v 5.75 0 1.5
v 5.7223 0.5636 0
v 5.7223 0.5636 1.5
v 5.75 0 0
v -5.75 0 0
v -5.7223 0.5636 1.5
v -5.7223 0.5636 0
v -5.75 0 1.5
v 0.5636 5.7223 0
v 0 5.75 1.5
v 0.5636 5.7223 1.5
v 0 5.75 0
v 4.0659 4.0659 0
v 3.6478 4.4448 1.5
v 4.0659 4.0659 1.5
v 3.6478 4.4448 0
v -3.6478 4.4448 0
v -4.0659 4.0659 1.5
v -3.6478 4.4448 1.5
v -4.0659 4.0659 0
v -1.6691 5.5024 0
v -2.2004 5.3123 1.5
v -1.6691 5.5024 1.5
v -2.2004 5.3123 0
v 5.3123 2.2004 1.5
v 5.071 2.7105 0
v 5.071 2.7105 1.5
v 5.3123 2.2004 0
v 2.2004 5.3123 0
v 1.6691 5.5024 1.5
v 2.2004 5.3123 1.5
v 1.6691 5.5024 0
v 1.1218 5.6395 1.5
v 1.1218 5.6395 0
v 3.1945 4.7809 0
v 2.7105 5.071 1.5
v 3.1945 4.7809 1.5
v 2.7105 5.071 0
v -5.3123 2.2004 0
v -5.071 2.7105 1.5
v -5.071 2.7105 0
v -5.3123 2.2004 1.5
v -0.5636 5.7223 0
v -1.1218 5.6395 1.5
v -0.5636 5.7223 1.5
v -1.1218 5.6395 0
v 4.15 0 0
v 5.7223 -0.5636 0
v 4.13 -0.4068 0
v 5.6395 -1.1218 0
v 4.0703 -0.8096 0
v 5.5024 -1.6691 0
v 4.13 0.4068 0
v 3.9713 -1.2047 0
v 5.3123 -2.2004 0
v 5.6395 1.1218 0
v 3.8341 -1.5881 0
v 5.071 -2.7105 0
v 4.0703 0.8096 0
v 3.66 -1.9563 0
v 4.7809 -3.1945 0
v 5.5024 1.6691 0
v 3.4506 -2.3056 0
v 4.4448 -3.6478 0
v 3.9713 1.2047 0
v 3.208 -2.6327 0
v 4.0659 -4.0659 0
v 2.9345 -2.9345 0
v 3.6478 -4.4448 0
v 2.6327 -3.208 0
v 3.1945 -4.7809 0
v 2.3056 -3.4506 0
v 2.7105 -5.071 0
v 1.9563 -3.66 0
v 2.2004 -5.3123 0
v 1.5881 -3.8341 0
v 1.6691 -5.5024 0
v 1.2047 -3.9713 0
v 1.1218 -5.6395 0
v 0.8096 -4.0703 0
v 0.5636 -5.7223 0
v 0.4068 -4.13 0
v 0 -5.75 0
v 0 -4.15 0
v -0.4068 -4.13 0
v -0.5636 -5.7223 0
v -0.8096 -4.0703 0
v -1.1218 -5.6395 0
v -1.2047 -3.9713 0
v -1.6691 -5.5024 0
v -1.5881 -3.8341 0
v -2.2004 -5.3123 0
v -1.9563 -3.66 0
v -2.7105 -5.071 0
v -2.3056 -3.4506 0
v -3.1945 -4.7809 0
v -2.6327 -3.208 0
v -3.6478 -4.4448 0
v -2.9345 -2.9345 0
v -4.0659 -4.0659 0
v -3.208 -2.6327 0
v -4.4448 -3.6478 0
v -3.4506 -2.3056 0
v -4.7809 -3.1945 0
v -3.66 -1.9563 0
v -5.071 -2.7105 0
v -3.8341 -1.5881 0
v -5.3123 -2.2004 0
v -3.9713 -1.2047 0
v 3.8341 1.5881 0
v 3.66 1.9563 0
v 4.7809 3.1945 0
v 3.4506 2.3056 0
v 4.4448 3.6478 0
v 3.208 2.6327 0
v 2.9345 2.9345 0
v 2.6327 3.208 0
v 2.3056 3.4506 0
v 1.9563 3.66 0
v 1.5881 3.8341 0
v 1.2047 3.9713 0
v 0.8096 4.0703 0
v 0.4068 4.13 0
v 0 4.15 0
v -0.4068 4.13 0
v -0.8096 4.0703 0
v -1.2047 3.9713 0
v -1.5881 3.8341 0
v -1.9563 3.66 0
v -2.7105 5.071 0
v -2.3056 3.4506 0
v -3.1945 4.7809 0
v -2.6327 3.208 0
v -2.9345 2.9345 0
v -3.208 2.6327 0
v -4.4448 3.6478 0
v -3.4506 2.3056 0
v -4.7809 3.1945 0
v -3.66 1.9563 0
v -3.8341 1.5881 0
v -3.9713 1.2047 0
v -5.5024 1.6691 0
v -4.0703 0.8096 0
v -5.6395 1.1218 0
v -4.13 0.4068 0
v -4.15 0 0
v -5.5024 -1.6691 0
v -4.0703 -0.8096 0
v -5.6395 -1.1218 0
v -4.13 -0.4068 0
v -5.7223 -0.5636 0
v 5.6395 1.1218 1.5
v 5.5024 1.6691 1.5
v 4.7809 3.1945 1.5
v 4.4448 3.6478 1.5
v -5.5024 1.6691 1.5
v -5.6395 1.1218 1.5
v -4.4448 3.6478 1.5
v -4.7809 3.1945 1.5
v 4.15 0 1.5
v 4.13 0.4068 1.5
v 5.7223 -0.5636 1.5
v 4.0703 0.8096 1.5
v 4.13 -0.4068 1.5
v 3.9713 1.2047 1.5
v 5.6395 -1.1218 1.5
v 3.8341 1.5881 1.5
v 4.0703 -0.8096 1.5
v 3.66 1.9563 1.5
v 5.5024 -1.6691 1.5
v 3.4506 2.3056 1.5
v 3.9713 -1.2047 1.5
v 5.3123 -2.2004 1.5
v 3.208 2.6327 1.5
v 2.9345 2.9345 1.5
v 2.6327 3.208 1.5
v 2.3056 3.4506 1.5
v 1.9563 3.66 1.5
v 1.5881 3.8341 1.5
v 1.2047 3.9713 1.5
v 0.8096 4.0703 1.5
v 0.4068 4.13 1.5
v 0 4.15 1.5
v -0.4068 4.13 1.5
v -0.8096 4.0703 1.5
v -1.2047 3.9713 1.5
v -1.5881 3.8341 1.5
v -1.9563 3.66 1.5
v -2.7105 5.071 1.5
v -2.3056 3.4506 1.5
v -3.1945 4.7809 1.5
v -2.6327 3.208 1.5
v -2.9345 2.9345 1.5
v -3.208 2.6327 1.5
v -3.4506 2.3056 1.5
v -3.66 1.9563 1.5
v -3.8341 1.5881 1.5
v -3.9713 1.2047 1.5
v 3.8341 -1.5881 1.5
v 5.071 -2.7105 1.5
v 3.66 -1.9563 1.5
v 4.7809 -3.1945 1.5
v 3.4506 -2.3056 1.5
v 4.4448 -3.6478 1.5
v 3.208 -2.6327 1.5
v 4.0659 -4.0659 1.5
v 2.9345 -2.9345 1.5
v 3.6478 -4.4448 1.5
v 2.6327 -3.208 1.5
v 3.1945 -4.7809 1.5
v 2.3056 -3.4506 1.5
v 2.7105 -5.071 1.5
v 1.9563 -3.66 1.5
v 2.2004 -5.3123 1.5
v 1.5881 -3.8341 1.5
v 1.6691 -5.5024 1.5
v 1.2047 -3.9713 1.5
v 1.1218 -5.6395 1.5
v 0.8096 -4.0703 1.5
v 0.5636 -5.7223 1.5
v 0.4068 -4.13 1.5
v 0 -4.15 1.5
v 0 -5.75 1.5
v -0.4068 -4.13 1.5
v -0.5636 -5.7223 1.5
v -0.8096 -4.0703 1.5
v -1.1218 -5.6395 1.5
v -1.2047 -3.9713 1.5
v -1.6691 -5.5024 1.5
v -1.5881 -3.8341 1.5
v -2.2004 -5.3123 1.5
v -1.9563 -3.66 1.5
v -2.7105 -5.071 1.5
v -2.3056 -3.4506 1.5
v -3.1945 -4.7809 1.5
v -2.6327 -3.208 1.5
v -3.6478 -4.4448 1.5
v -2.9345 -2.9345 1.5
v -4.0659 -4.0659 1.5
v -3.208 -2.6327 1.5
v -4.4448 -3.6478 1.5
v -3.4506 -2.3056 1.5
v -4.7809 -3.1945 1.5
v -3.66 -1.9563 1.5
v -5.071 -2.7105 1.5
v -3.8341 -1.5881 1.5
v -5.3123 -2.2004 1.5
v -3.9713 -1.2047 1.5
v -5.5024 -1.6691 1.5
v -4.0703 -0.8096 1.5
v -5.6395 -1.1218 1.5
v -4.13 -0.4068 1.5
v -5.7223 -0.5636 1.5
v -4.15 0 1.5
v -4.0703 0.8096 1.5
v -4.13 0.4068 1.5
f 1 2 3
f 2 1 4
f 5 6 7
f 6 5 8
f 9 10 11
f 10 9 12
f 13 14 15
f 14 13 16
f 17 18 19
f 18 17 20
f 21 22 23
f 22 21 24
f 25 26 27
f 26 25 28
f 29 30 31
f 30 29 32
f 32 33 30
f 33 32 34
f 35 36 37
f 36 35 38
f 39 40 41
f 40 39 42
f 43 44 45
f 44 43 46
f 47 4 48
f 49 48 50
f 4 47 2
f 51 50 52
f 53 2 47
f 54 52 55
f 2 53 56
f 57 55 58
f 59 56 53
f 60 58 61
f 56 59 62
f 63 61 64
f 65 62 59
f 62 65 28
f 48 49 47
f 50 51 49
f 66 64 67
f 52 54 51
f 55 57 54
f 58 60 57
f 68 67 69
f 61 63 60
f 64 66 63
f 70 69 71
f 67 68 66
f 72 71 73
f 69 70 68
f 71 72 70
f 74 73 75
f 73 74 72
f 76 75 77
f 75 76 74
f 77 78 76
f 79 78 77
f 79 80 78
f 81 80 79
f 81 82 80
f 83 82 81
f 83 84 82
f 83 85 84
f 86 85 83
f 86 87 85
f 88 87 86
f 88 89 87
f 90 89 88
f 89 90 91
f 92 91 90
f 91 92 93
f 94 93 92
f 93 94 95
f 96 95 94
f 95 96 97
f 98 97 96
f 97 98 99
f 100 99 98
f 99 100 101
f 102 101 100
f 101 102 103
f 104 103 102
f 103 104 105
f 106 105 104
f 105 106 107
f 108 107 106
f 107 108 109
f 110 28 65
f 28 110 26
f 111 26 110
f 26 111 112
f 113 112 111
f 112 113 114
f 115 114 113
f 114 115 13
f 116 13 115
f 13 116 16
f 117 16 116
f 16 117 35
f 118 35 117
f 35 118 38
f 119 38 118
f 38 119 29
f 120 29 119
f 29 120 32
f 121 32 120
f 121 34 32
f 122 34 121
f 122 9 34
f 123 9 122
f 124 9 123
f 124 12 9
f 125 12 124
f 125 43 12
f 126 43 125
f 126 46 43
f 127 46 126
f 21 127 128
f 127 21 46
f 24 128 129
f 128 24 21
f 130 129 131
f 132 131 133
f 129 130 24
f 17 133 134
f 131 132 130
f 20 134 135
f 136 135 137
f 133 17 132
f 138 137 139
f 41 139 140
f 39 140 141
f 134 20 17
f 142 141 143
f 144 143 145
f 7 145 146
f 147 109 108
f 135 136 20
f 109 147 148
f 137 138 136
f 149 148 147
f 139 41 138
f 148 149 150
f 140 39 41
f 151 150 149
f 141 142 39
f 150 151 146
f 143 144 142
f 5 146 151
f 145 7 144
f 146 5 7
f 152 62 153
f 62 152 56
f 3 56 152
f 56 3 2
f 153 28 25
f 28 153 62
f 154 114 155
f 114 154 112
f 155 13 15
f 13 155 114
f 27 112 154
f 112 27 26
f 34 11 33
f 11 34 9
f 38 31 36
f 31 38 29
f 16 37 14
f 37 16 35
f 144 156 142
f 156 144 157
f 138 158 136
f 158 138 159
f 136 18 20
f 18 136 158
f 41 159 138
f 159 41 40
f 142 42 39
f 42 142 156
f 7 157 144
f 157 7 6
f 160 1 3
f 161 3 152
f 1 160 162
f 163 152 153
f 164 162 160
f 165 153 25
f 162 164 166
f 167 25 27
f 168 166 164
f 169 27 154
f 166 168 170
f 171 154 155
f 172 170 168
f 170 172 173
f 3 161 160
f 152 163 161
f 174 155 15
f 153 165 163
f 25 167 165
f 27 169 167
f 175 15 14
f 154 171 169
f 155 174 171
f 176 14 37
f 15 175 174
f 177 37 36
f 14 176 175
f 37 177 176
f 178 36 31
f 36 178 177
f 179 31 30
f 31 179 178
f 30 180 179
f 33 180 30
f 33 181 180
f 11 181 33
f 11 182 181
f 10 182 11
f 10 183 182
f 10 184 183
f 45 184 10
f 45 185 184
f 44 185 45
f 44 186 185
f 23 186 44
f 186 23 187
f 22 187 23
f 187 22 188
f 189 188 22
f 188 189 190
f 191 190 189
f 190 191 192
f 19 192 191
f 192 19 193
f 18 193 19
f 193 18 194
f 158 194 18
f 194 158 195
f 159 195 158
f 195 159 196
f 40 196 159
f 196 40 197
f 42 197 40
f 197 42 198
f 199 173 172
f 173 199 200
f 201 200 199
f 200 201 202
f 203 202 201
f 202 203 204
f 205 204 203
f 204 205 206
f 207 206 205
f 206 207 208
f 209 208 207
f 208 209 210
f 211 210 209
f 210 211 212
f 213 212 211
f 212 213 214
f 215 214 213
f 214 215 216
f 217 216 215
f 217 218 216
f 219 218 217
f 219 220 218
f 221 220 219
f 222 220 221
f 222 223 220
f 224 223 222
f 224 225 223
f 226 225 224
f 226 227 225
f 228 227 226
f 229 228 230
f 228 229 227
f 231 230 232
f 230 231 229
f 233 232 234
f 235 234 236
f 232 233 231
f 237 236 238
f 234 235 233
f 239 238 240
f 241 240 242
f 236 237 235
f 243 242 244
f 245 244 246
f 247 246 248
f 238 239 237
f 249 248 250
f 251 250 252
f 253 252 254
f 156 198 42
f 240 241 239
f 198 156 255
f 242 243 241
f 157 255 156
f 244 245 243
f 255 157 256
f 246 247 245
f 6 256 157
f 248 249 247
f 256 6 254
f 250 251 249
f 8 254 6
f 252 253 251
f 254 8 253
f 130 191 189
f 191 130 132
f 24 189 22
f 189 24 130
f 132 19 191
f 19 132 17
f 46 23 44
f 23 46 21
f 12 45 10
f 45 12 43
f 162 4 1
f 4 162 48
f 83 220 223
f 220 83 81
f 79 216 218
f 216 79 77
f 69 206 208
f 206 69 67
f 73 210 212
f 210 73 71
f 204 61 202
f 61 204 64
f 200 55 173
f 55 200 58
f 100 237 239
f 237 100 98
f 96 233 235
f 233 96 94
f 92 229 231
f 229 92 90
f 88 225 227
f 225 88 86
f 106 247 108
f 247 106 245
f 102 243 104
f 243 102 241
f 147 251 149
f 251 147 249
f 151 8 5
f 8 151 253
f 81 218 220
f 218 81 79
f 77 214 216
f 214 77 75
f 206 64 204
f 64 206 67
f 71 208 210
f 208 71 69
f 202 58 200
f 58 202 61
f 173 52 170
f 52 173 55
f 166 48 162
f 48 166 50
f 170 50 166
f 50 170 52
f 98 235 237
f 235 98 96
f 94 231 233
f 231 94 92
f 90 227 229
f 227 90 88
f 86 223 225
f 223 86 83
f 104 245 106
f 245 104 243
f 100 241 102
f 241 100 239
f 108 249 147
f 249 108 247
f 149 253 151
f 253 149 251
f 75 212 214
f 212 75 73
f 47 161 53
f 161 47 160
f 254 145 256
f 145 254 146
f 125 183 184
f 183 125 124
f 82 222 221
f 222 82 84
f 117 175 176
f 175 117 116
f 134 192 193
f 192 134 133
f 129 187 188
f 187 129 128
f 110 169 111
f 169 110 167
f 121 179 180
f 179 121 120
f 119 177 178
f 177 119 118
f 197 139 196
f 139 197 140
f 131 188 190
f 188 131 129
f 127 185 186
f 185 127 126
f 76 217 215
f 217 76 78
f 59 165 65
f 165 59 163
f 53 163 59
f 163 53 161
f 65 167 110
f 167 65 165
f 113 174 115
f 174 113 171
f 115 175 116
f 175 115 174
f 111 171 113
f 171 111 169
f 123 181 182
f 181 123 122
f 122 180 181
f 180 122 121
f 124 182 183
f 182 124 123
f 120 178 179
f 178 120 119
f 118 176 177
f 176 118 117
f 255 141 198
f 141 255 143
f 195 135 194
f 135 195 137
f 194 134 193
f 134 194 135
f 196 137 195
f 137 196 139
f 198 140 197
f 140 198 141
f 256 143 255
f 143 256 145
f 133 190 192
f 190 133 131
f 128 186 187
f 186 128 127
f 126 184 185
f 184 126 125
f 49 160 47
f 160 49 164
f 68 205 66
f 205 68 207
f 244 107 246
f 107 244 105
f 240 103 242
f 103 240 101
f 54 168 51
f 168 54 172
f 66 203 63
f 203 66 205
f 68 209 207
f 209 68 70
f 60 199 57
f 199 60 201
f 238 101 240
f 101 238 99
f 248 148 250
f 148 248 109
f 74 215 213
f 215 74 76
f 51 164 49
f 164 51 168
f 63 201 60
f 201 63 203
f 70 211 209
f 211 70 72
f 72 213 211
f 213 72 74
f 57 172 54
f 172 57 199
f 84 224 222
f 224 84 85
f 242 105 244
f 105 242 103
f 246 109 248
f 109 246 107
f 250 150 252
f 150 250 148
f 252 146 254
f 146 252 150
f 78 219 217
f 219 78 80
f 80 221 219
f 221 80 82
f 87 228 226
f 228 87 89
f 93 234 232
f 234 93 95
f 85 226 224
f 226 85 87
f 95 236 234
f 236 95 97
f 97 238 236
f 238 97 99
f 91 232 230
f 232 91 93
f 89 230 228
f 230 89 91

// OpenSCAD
// Gen-DZ — 608 INNER-RACE SPACER (2026-11-02). Print x2 (one under the lower collar on the pedestal bearing, one between the
// upper collar and the top bearing). Touches ONLY the inner race (Ø < 12 mm), so the collar never rubs the seal / outer race.
include <parameters.scad>;
$fn = 64;
difference() {
    cylinder(d=race_spacer_od, h=race_spacer_h);
    translate([0, 0, -0.1]) cylinder(d=race_spacer_id, h=race_spacer_h + 0.2);
}
